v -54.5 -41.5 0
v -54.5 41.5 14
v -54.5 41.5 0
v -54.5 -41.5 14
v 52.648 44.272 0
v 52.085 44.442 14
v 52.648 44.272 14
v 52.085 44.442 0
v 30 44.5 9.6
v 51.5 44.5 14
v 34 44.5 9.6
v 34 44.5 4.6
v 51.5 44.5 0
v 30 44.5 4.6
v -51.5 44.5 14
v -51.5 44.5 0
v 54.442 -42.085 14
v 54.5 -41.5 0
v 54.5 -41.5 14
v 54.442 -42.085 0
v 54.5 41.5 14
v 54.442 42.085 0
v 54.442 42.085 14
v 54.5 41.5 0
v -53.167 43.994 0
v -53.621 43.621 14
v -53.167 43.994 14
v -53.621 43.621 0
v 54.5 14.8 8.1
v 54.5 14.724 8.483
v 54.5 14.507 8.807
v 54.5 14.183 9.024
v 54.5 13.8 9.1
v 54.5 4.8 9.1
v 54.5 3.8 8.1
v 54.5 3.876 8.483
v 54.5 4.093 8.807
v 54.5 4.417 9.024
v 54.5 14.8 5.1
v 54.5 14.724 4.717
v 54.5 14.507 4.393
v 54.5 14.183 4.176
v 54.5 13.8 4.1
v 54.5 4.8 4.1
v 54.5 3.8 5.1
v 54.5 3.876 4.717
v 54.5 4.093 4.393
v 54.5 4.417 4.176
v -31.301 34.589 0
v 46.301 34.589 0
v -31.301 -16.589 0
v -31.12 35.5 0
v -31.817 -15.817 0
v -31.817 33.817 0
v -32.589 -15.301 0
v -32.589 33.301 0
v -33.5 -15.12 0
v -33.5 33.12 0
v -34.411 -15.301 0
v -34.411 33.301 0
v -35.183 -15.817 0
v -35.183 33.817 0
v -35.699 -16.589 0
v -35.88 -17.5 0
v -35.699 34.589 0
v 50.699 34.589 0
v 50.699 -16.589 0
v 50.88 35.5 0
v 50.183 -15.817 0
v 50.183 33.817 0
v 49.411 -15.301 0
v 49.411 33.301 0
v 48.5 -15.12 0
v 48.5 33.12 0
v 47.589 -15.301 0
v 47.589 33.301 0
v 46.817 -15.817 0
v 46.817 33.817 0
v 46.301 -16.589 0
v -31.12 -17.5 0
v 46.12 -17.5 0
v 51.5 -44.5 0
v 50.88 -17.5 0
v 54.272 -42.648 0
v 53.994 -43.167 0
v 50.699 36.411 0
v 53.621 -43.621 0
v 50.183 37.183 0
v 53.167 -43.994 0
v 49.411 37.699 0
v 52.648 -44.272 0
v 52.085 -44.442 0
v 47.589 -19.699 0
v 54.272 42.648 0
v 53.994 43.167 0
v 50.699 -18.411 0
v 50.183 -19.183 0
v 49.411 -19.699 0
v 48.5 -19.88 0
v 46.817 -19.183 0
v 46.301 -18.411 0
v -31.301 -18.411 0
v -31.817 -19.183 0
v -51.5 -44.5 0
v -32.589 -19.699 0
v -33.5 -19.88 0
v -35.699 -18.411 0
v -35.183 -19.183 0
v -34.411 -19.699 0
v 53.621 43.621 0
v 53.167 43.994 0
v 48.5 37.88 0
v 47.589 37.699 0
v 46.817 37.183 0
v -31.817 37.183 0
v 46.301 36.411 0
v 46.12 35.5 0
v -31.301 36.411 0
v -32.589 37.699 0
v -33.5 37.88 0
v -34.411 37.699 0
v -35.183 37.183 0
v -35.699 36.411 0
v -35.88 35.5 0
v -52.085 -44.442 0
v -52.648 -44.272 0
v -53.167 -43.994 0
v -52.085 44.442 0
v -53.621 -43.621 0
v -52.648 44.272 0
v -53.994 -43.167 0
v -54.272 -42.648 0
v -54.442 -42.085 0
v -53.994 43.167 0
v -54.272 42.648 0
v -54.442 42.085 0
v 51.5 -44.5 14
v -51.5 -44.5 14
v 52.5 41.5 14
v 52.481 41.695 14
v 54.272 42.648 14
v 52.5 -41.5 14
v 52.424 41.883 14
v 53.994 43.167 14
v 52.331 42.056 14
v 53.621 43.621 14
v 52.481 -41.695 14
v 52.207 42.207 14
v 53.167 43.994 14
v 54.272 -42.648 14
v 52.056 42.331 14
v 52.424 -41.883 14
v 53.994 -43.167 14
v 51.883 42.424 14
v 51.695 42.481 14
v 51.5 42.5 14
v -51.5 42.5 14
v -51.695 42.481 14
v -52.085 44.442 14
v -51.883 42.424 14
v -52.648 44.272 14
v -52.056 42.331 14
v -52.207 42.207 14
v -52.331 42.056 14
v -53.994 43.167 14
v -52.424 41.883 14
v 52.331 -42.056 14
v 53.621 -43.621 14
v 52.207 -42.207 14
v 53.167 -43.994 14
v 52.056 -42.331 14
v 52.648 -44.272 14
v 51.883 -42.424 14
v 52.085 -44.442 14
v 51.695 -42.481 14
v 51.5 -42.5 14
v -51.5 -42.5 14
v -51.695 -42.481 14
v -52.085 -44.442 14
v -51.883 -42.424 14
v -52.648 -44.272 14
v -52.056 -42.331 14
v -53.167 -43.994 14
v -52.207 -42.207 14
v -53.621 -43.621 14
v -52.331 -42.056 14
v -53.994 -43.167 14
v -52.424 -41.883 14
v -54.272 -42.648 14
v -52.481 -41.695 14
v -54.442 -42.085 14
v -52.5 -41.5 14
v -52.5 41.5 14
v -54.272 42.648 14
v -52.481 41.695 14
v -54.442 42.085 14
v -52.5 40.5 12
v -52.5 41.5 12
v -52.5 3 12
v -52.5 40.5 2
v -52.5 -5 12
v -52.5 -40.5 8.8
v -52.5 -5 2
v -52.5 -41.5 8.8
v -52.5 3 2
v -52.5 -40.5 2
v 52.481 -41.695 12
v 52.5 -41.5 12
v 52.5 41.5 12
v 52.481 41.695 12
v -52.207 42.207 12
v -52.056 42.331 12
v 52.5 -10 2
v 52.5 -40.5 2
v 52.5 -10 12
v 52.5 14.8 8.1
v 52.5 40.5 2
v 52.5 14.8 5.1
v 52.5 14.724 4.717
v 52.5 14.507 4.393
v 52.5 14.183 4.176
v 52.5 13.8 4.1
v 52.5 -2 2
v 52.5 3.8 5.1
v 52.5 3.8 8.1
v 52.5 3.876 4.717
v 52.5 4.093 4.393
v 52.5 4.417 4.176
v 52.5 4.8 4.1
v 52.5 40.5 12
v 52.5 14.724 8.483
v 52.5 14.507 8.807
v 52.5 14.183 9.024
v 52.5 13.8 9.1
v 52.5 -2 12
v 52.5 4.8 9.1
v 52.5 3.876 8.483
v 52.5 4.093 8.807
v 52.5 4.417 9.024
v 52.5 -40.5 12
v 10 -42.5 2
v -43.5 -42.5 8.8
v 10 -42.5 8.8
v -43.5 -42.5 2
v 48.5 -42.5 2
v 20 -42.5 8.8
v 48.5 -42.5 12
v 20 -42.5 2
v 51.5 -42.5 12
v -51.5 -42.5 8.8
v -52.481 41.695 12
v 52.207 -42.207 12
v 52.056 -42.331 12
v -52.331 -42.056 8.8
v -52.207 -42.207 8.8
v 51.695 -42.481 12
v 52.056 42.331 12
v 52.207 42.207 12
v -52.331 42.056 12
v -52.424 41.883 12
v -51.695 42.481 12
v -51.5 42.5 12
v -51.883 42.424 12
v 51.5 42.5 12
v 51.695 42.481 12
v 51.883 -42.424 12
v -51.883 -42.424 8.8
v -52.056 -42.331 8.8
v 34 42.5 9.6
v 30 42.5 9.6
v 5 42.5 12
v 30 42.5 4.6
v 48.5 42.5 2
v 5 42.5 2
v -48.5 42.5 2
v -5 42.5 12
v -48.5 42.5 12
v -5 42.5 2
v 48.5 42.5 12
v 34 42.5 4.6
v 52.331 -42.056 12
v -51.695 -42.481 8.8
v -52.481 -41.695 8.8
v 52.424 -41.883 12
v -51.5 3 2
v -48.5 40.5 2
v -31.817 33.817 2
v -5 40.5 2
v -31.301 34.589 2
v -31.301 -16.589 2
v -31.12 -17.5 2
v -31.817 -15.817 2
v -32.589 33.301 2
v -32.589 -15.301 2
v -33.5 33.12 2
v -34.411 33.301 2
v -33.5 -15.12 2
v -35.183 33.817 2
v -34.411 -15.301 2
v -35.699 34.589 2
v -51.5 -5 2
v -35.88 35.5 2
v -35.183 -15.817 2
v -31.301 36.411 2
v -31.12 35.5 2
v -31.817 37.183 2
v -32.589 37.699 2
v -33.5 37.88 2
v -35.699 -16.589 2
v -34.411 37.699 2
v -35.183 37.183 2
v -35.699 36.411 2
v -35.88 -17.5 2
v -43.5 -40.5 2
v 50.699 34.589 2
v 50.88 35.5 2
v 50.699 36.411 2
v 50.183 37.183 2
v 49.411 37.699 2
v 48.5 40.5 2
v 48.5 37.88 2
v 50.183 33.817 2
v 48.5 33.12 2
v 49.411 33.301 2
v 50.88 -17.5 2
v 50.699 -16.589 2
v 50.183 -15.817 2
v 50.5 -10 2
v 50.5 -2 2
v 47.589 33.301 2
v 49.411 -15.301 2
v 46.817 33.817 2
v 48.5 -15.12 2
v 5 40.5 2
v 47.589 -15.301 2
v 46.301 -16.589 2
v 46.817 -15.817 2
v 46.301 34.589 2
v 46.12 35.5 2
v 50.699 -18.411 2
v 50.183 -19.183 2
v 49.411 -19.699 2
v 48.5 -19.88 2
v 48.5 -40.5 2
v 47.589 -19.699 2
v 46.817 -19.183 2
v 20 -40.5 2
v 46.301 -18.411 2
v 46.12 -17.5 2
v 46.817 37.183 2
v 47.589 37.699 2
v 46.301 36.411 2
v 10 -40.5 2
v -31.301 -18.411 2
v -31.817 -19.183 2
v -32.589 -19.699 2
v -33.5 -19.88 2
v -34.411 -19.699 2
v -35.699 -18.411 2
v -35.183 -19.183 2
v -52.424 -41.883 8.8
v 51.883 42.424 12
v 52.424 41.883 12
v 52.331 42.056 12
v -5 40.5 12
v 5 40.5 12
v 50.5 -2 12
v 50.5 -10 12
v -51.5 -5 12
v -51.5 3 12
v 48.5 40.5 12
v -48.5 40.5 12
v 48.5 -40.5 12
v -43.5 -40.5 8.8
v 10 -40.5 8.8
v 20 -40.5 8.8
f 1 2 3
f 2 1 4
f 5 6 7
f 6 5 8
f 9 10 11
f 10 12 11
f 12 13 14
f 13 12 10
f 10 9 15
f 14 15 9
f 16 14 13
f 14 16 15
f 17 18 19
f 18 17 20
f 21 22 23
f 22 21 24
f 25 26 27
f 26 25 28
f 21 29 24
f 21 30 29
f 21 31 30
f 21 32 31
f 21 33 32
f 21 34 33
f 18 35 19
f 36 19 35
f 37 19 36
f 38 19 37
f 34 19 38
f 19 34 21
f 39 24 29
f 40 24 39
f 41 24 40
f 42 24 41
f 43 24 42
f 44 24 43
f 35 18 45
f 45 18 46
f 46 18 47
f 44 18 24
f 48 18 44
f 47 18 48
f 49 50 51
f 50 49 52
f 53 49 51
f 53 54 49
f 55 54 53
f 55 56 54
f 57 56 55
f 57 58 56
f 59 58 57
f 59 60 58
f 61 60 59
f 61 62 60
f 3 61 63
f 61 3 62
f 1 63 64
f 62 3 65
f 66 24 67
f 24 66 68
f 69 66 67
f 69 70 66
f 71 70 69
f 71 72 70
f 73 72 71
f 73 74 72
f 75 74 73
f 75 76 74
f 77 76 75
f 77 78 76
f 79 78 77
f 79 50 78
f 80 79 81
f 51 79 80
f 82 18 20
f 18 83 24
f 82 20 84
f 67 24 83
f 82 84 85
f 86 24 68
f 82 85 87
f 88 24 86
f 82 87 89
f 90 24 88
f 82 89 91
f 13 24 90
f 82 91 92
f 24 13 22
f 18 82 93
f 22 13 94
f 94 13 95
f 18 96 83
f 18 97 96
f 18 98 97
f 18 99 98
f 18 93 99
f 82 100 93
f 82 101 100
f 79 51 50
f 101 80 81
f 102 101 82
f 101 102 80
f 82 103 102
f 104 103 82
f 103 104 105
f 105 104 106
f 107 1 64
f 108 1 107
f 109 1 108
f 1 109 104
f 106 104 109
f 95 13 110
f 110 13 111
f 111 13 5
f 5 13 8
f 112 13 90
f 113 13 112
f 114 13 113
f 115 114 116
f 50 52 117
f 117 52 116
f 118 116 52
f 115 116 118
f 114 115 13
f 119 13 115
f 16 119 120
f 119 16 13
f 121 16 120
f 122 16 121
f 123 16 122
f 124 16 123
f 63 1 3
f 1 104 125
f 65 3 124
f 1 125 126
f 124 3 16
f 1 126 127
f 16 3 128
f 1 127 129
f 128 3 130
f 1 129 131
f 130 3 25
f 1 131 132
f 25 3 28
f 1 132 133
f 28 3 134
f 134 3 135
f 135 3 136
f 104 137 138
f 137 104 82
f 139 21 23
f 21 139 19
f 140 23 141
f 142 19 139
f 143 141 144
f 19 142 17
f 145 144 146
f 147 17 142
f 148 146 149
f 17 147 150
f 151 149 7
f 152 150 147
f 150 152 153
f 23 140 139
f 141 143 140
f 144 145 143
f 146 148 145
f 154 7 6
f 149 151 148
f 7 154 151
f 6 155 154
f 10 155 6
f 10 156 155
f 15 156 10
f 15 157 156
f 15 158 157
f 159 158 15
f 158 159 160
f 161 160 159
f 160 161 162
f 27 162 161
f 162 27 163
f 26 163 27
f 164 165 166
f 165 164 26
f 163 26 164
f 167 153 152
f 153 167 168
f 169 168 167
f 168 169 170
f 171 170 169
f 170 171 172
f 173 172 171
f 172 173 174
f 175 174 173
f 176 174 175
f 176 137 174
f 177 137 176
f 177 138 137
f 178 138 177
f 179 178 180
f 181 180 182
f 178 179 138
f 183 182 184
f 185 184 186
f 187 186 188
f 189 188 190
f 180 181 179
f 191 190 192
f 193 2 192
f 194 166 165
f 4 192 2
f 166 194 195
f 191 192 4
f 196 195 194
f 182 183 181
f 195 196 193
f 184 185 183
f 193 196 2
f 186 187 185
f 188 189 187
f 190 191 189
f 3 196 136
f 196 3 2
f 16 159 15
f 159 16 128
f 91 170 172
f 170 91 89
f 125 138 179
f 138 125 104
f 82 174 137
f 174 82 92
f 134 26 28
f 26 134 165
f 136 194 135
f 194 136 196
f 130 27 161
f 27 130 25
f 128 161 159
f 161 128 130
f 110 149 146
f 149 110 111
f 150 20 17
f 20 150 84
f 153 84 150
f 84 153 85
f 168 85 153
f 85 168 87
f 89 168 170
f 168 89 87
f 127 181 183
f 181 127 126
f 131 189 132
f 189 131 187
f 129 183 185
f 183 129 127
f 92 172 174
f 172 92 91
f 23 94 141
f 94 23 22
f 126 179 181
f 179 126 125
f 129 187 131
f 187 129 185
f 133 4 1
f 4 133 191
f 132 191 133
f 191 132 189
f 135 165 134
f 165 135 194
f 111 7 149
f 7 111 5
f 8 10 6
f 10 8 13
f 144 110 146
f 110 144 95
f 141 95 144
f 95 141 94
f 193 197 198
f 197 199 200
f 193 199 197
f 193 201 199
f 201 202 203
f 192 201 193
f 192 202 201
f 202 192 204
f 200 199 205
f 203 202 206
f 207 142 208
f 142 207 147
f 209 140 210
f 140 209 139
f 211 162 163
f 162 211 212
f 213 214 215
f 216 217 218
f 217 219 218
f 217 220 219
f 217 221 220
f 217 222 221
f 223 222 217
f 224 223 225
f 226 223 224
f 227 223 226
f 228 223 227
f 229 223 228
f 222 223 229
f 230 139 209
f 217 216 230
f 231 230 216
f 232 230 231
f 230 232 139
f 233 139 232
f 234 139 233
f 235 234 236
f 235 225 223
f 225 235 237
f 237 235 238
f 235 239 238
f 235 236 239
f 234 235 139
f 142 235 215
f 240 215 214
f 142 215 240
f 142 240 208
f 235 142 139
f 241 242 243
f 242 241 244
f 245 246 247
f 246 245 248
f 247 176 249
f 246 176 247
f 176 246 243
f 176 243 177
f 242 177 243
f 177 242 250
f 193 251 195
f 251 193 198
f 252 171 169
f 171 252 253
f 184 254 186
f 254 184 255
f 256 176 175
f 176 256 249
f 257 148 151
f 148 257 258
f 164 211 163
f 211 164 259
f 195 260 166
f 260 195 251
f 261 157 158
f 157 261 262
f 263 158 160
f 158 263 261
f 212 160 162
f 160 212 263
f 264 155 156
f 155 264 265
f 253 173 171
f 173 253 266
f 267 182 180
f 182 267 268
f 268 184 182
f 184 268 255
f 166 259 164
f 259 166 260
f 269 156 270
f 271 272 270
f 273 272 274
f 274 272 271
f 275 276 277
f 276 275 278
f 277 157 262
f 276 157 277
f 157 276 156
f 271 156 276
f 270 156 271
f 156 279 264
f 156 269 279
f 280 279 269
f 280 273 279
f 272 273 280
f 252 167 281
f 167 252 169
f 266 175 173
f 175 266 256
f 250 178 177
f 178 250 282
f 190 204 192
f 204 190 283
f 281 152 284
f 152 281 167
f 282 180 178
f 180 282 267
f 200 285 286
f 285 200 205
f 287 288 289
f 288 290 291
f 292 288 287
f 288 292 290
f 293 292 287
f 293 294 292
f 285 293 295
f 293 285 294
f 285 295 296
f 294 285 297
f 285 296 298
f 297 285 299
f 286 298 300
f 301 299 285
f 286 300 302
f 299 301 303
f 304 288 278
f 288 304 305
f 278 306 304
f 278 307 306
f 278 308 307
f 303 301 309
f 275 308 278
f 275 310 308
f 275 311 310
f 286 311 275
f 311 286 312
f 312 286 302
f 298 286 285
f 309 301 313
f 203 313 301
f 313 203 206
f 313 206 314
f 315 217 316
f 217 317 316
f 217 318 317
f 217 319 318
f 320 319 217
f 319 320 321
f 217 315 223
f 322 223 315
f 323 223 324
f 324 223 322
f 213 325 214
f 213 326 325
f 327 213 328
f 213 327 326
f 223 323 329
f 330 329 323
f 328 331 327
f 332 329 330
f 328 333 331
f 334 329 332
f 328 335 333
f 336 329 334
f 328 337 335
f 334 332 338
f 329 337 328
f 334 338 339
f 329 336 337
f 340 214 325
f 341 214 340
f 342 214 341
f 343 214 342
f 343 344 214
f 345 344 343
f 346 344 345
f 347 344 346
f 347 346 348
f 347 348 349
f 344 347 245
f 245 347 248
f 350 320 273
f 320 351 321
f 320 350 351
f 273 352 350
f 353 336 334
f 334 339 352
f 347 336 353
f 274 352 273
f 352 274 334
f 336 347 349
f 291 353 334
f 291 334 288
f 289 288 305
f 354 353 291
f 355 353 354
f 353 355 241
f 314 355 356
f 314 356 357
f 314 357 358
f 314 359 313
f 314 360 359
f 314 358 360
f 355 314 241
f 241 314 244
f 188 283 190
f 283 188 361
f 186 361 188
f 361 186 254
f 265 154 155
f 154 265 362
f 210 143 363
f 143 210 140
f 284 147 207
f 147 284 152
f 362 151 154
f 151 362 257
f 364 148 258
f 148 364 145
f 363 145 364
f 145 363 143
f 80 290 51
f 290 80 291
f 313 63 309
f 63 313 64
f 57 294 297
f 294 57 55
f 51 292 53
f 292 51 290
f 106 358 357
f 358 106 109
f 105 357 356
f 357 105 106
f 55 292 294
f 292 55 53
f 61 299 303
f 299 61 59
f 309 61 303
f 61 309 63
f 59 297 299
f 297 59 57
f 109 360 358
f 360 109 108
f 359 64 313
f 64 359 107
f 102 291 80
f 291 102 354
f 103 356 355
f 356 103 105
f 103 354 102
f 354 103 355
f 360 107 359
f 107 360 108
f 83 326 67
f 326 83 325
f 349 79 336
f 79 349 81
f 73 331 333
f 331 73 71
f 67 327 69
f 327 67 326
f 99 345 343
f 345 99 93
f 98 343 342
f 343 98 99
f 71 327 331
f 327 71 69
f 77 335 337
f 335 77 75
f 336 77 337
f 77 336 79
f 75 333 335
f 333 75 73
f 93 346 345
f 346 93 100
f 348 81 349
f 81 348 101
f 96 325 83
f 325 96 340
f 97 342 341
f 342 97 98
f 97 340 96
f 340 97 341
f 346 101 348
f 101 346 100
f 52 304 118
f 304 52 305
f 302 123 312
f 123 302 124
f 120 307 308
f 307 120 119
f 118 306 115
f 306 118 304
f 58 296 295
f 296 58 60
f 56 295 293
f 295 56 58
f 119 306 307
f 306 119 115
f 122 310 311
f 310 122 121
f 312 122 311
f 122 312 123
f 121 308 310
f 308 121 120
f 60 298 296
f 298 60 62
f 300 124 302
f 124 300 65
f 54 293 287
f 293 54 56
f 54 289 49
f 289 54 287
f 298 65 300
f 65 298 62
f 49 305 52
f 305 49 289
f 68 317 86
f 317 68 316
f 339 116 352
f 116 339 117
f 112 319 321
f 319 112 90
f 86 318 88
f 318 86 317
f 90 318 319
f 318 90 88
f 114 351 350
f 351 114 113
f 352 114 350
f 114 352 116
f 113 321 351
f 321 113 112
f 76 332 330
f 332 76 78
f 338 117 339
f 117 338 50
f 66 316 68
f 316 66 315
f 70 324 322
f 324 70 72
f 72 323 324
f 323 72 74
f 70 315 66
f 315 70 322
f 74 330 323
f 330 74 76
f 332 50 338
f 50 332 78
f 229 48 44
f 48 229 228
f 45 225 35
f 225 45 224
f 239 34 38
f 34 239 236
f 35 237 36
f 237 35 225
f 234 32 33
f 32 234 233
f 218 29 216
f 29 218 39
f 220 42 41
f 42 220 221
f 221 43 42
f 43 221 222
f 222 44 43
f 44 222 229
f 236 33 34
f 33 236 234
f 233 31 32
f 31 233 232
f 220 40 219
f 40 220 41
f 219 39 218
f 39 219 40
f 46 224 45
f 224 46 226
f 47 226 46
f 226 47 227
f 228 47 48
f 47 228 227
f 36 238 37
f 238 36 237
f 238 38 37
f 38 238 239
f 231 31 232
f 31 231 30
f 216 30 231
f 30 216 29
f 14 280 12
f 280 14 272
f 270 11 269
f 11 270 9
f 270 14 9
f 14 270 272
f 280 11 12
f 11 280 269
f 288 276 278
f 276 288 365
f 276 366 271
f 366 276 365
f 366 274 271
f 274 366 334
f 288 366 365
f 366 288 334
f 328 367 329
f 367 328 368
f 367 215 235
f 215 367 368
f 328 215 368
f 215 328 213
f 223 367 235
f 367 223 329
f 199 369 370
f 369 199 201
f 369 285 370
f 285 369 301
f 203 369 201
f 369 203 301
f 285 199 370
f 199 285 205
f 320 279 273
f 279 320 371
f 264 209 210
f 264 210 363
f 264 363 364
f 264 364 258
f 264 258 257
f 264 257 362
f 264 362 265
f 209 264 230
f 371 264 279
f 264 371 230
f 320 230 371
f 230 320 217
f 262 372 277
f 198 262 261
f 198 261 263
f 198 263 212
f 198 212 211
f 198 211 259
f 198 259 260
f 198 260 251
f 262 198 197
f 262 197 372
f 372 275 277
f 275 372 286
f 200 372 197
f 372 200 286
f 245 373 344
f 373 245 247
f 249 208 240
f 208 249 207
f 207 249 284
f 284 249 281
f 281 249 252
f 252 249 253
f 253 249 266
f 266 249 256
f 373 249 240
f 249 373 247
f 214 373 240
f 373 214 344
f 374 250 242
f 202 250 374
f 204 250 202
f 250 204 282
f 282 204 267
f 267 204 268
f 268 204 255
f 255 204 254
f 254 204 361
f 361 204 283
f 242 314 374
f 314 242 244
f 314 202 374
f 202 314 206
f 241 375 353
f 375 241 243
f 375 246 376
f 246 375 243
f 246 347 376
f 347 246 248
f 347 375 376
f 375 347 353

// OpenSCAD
// MacroPad RP2040 Case (Bottom and Sides)
// Companion to macropad_top_cover.scad
// Parametric design for Adafruit MacroPad RP2040 keyboard controller
// Author: Generated for CircuitPython EVM Controller project
// License: MIT

// The bottom case along with the filler layer and cover OpenSCAD models provivided
// wraps the Adafruit MacroPad RP2040 in a tightfitting case. The case has a USB port
// the reset button opening, as well as 4 mounting holes to fasten the PCD to the case.

// =============================================================================
// PARAMETERS
// =============================================================================

// Overall cover dimensions addinh Quad Encoder
qencoder_width = 25;      // Width of Quad Encoder (mm)

// Adafruit Macropad RP2040 PCB parameters
pcb_length = 105;          // RP2040 PCB length (mm)
pcb_width = 60 + qencoder_width;    // RP2040 + Quad Encoder PCB width (mm)
pcb_thickness = 1.6;       // Standard PCB thickness (mm)
pcb_clearance = 1;         // Space around PCB (mm)
pcb_height_clearance = 8;  // Space above PCB for components (mm)

// Overall case dimensions (should match top cover)
bottom_thickness = 2;      // Thickness of bottom plate (mm)
wall_thickness = 2;        // Thickness of side walls (mm)
corner_radius = 3;         // Rounded corner radius (mm)
inner_corner_radius = 1;   // Rounded inner corner radius

case_length = pcb_length + (wall_thickness * 2);   // Total length of case (mm)
case_width = pcb_width +  + (wall_thickness * 2);  // Total width of case (mm)
case_height = 14;          // Height of case walls (mm)

// Top cover integration
top_cover_thickness = 3;   // Thickness of top cover (for fit calculation)
top_cover_lip = 1;         // How much top cover overlaps case walls (mm)

// USB port cutout
usb_width = 11;             // Width of USB-C port (mm)
usb_height = 5;            // ** Was 4 - Height of USB-C port (mm)
usb_offset_from_edge = 3;  // Distance from PCB edge to USB center (mm)
usb_position_y = qencoder_width/2 - 3.2; // Y position along case width (0 = center)
usb_corner_radius = 1;     // Rounded corners for USB hole

// PCB mounting holes keep 2mm for wall in mind
mount_hole_diameter = 4.56;   // Diameter for M3 screws (mm)
mount_hole_positions = [   // [X, Y] positions relative to PCB center
    [-pcb_length/2 + 19, -26.5 + qencoder_width/2 - 3.5],   // Bottom left
    [pcb_length/2 - 4, -26.5 + qencoder_width/2 - 3.5],   // Bottom right  
    [-pcb_length/2 + 19, 26.5 + qencoder_width/2 - 3.5],    // Top left
    [pcb_length/2 - 4, 26.5 + qencoder_width/2 - 3.5]     // Top right
];

// Standoffs for PCB mounting
standoff_height = 6;         // Height of PCB standoffs (mm)
standoff_diameter = 5.2;     // Diameter of standoff base (mm)
standoff_hole_diameter = 2.5; // Hole diameter in standoff for screw (mm)

// 3D printing parameters
clearance = 0.2;           // General clearance (mm)
layer_height = 0.2;        // Your 3D printer layer height (mm)

// Catching indent for Cover support lip
cover_lip_indent = [10, 2.5, 2];


// =============================================================================
// MAIN OBJECT
// =============================================================================

difference() {

    union() {
        // Main case body
        case_body();

        // PCB mounting standoffs
        pcb_standoffs();
    }        

    // Remove internal cavity
    internal_cavity();
        
    // Remove USB port hole
    usb_port_hole();
    
    // Remove Reset port hole
    reset_port_hole();

    // Remove PCB mounting holes
    pcb_mounting_holes();
}

// Add cover supports into the case hole
// Corners
translate([-5, pcb_width/2-2, 0])   // y top center
    cube([10,3,12]);
translate([pcb_length/2-2, -10, 0])   // x center 
    cube([3, 8, 12]);
translate([-pcb_length/2-2, -5, 0])   // x center 
    cube([3, 8, 12]);
translate([pcb_length/2-4, pcb_width/2-2, 0])   // x and y top
    cube([5, 3, 12]);
translate([-(pcb_length/2+1), pcb_width/2-2, 0])    // -x and y top
    cube([5, 3, 12]);
translate([pcb_length/2-4, -(pcb_width/2+1), 0])    // x and -y bottom
    cube([5, 3, 12]);
// Encoder Support
translate([-(pcb_length/2+1), -(pcb_width/2+1), 0]) // -x and -y bottom
    cube([10,3,12 - 3.2]);
translate([10, -(pcb_width/2+1), 0])
    cube([10,3,12 - 3.2]);

// =============================================================================
// MODULES (Functions)
// =============================================================================

// Create the main case body with walls
module case_body() {
    // Bottom plate
    hull() {
        // Four corner cylinders for rounded rectangle base
        translate([-(case_length/2 - corner_radius), -(case_width/2 - corner_radius), 0])
            cylinder(h = bottom_thickness, r = corner_radius, $fn = 32);
        
        translate([+(case_length/2 - corner_radius), -(case_width/2 - corner_radius), 0])
            cylinder(h = bottom_thickness, r = corner_radius, $fn = 32);
        
        translate([+(case_length/2 - corner_radius), +(case_width/2 - corner_radius), 0])
            cylinder(h = bottom_thickness, r = corner_radius, $fn = 32);
        
        translate([-(case_length/2 - corner_radius), +(case_width/2 - corner_radius), 0])
            cylinder(h = bottom_thickness, r = corner_radius, $fn = 32);
    }
    
    // Side walls
    difference() {
        // Outer wall
        hull() {
            translate([-(case_length/2 - corner_radius), -(case_width/2 - corner_radius), 0])
                cylinder(h = case_height, r = corner_radius, $fn = 32);
            
            translate([+(case_length/2 - corner_radius), -(case_width/2 - corner_radius), 0])
                cylinder(h = case_height, r = corner_radius, $fn = 32);
            
            translate([+(case_length/2 - corner_radius), +(case_width/2 - corner_radius), 0])
                cylinder(h = case_height, r = corner_radius, $fn = 32);
            
            translate([-(case_length/2 - corner_radius), +(case_width/2 - corner_radius), 0])
                cylinder(h = case_height, r = corner_radius, $fn = 32);
        }
        
        // Inner cavity (removed in main difference)
        translate([0, 0, bottom_thickness])
            hull() {
                inner_radius = corner_radius - wall_thickness;
                inner_length = case_length - 2 * wall_thickness;
                inner_width = case_width - 2 * wall_thickness;
                
                translate([-(inner_length/2 - inner_radius), -(inner_width/2 - inner_radius), 0])
                    cylinder(h = case_height, r = inner_radius, $fn = 32);
                
                translate([+(inner_length/2 - inner_radius), -(inner_width/2 - inner_radius), 0])
                    cylinder(h = case_height, r = inner_radius, $fn = 32);
                
                translate([+(inner_length/2 - inner_radius), +(inner_width/2 - inner_radius), 0])
                    cylinder(h = case_height, r = inner_radius, $fn = 32);
                
                translate([-(inner_length/2 - inner_radius), +(inner_width/2 - inner_radius), 0])
                    cylinder(h = case_height, r = inner_radius, $fn = 32);
            }
    }
    
    // Top cover lip/ledge
    translate([0, 0, case_height - top_cover_thickness]) {
        difference() {
            // Outer ledge
            hull() {
                translate([-(case_length/2 - corner_radius), -(case_width/2 - corner_radius), 0])
                    cylinder(h = top_cover_thickness, r = corner_radius, $fn = 32);
                
                translate([+(case_length/2 - corner_radius), -(case_width/2 - corner_radius), 0])
                    cylinder(h = top_cover_thickness, r = corner_radius, $fn = 32);
                
                translate([+(case_length/2 - corner_radius), +(case_width/2 - corner_radius), 0])
                    cylinder(h = top_cover_thickness, r = corner_radius, $fn = 32);
                
                translate([-(case_length/2 - corner_radius), +(case_width/2 - corner_radius), 0])
                    cylinder(h = top_cover_thickness, r = corner_radius, $fn = 32);
            }
            
            // Inner cutout for top cover
            hull() {
                ledge_radius = corner_radius - top_cover_lip;
                ledge_length = case_length - 2 * top_cover_lip;
                ledge_width = case_width - 2 * top_cover_lip;
                
                translate([-(ledge_length/2 - ledge_radius), -(ledge_width/2 - ledge_radius), -0.5])
                    cylinder(h = top_cover_thickness + 1, r = ledge_radius, $fn = 32);
                
                translate([+(ledge_length/2 - ledge_radius), -(ledge_width/2 - ledge_radius), -0.5])
                    cylinder(h = top_cover_thickness + 1, r = ledge_radius, $fn = 32);
                
                translate([+(ledge_length/2 - ledge_radius), +(ledge_width/2 - ledge_radius), -0.5])
                    cylinder(h = top_cover_thickness + 1, r = ledge_radius, $fn = 32);
                
                translate([-(ledge_length/2 - ledge_radius), +(ledge_width/2 - ledge_radius), -0.5])
                    cylinder(h = top_cover_thickness + 1, r = ledge_radius, $fn = 32);
            }
        }
    }
}

// Create internal cavity (removed from main body)
module internal_cavity() {
    translate([0, 0, bottom_thickness]) {
        inner_radius = inner_corner_radius;
        inner_length = case_length - 2 * wall_thickness;
        inner_width = case_width - 2 * wall_thickness;

        hull() {
            translate([-(inner_length/2 - inner_radius), -(inner_width/2 - inner_radius), 0])
                cylinder(h = case_height, r = inner_radius, $fn = 32);
            
            translate([+(inner_length/2 - inner_radius), -(inner_width/2 - inner_radius), 0])
                cylinder(h = case_height, r = inner_radius, $fn = 32);
            
            translate([+(inner_length/2 - inner_radius), +(inner_width/2 - inner_radius), 0])
                cylinder(h = case_height, r = inner_radius, $fn = 32);
            
            translate([-(inner_length/2 - inner_radius), +(inner_width/2 - inner_radius), 0])
                cylinder(h = case_height, r = inner_radius, $fn = 32);
        }
    }
}

// Create PCB mounting standoffs
module pcb_standoffs() {
    for (pos = mount_hole_positions) {
        translate([pos[0], pos[1], bottom_thickness]) {
            cylinder(
                h = standoff_height, 
                d = standoff_diameter, 
                $fn = 16
            );
        }
    }
}

// Create USB port hole
module usb_port_hole() {
    // Position USB hole on the side wall
    translate([
        (case_length/2 - usb_offset_from_edge), 
        usb_position_y, 
        bottom_thickness + standoff_height + pcb_thickness + usb_height/2 - 5.5
    ]) {
        rotate([0, 90, 0]) {
            // Rounded rectangle for USB port
            hull() {
                translate([-(usb_height/2 - usb_corner_radius), -(usb_width/2 - usb_corner_radius), 0])
                    cylinder(h = wall_thickness + 2, r = usb_corner_radius, $fn = 16);
                
                translate([+(usb_height/2 - usb_corner_radius), -(usb_width/2 - usb_corner_radius), 0])
                    cylinder(h = wall_thickness + 2, r = usb_corner_radius, $fn = 16);
                
                translate([+(usb_height/2 - usb_corner_radius), +(usb_width/2 - usb_corner_radius), 0])
                    cylinder(h = wall_thickness + 2, r = usb_corner_radius, $fn = 16);
                
                translate([-(usb_height/2 - usb_corner_radius), +(usb_width/2 - usb_corner_radius), 0])
                    cylinder(h = wall_thickness + 2, r = usb_corner_radius, $fn = 16);
            }
        }
    }
}

// Create Reset port hole
module reset_port_hole() {
    
    echo(pcb_length/2 - 22.5 + qencoder_width/2- 3.2);
    
    // Position Reset hole on the side wall
    translate([
        -usb_position_y + (pcb_length/2 - 22.5 + qencoder_width/2- 3.2),  //22.5
        (case_width/2 + usb_offset_from_edge - 1), 
        bottom_thickness + standoff_height + pcb_thickness + usb_height/2 - 5
    ]) {
        rotate([0, 90, 0]) {
            // Rounded rectangle for Reset port
            hull() {
                translate([-(usb_height/2 - usb_corner_radius), -(usb_width/2 - usb_corner_radius), 0])
                    cylinder(h = wall_thickness + 2, r = usb_corner_radius, $fn = 16);
                
                translate([+(usb_height/2 - usb_corner_radius), -(usb_width/2 - usb_corner_radius), 0])
                    cylinder(h = wall_thickness + 2, r = usb_corner_radius, $fn = 16);
                
                translate([+(usb_height/2 - usb_corner_radius), +(usb_width/2 - usb_corner_radius), 0])
                    cylinder(h = wall_thickness + 2, r = usb_corner_radius, $fn = 16);
                
                translate([-(usb_height/2 - usb_corner_radius), +(usb_width/2 - usb_corner_radius), 0])
                    cylinder(h = wall_thickness + 2, r = usb_corner_radius, $fn = 16);
            }
        }
    }
}

// Create PCB mounting holes
module pcb_mounting_holes() {
    for (pos = mount_hole_positions) {
        translate([pos[0], pos[1], -0.5]) {
            // Through hole for screw
            cylinder(
                h = case_height + 1, 
                d = mount_hole_diameter + clearance, 
                $fn = 16
            );
            
            // Countersink hole in standoff
            translate([0, 0, bottom_thickness]) {
                cylinder(
                    h = standoff_height + 0.5, 
                    d = standoff_hole_diameter + clearance, 
                    $fn = 16
                );
            }
        }
    }
}
